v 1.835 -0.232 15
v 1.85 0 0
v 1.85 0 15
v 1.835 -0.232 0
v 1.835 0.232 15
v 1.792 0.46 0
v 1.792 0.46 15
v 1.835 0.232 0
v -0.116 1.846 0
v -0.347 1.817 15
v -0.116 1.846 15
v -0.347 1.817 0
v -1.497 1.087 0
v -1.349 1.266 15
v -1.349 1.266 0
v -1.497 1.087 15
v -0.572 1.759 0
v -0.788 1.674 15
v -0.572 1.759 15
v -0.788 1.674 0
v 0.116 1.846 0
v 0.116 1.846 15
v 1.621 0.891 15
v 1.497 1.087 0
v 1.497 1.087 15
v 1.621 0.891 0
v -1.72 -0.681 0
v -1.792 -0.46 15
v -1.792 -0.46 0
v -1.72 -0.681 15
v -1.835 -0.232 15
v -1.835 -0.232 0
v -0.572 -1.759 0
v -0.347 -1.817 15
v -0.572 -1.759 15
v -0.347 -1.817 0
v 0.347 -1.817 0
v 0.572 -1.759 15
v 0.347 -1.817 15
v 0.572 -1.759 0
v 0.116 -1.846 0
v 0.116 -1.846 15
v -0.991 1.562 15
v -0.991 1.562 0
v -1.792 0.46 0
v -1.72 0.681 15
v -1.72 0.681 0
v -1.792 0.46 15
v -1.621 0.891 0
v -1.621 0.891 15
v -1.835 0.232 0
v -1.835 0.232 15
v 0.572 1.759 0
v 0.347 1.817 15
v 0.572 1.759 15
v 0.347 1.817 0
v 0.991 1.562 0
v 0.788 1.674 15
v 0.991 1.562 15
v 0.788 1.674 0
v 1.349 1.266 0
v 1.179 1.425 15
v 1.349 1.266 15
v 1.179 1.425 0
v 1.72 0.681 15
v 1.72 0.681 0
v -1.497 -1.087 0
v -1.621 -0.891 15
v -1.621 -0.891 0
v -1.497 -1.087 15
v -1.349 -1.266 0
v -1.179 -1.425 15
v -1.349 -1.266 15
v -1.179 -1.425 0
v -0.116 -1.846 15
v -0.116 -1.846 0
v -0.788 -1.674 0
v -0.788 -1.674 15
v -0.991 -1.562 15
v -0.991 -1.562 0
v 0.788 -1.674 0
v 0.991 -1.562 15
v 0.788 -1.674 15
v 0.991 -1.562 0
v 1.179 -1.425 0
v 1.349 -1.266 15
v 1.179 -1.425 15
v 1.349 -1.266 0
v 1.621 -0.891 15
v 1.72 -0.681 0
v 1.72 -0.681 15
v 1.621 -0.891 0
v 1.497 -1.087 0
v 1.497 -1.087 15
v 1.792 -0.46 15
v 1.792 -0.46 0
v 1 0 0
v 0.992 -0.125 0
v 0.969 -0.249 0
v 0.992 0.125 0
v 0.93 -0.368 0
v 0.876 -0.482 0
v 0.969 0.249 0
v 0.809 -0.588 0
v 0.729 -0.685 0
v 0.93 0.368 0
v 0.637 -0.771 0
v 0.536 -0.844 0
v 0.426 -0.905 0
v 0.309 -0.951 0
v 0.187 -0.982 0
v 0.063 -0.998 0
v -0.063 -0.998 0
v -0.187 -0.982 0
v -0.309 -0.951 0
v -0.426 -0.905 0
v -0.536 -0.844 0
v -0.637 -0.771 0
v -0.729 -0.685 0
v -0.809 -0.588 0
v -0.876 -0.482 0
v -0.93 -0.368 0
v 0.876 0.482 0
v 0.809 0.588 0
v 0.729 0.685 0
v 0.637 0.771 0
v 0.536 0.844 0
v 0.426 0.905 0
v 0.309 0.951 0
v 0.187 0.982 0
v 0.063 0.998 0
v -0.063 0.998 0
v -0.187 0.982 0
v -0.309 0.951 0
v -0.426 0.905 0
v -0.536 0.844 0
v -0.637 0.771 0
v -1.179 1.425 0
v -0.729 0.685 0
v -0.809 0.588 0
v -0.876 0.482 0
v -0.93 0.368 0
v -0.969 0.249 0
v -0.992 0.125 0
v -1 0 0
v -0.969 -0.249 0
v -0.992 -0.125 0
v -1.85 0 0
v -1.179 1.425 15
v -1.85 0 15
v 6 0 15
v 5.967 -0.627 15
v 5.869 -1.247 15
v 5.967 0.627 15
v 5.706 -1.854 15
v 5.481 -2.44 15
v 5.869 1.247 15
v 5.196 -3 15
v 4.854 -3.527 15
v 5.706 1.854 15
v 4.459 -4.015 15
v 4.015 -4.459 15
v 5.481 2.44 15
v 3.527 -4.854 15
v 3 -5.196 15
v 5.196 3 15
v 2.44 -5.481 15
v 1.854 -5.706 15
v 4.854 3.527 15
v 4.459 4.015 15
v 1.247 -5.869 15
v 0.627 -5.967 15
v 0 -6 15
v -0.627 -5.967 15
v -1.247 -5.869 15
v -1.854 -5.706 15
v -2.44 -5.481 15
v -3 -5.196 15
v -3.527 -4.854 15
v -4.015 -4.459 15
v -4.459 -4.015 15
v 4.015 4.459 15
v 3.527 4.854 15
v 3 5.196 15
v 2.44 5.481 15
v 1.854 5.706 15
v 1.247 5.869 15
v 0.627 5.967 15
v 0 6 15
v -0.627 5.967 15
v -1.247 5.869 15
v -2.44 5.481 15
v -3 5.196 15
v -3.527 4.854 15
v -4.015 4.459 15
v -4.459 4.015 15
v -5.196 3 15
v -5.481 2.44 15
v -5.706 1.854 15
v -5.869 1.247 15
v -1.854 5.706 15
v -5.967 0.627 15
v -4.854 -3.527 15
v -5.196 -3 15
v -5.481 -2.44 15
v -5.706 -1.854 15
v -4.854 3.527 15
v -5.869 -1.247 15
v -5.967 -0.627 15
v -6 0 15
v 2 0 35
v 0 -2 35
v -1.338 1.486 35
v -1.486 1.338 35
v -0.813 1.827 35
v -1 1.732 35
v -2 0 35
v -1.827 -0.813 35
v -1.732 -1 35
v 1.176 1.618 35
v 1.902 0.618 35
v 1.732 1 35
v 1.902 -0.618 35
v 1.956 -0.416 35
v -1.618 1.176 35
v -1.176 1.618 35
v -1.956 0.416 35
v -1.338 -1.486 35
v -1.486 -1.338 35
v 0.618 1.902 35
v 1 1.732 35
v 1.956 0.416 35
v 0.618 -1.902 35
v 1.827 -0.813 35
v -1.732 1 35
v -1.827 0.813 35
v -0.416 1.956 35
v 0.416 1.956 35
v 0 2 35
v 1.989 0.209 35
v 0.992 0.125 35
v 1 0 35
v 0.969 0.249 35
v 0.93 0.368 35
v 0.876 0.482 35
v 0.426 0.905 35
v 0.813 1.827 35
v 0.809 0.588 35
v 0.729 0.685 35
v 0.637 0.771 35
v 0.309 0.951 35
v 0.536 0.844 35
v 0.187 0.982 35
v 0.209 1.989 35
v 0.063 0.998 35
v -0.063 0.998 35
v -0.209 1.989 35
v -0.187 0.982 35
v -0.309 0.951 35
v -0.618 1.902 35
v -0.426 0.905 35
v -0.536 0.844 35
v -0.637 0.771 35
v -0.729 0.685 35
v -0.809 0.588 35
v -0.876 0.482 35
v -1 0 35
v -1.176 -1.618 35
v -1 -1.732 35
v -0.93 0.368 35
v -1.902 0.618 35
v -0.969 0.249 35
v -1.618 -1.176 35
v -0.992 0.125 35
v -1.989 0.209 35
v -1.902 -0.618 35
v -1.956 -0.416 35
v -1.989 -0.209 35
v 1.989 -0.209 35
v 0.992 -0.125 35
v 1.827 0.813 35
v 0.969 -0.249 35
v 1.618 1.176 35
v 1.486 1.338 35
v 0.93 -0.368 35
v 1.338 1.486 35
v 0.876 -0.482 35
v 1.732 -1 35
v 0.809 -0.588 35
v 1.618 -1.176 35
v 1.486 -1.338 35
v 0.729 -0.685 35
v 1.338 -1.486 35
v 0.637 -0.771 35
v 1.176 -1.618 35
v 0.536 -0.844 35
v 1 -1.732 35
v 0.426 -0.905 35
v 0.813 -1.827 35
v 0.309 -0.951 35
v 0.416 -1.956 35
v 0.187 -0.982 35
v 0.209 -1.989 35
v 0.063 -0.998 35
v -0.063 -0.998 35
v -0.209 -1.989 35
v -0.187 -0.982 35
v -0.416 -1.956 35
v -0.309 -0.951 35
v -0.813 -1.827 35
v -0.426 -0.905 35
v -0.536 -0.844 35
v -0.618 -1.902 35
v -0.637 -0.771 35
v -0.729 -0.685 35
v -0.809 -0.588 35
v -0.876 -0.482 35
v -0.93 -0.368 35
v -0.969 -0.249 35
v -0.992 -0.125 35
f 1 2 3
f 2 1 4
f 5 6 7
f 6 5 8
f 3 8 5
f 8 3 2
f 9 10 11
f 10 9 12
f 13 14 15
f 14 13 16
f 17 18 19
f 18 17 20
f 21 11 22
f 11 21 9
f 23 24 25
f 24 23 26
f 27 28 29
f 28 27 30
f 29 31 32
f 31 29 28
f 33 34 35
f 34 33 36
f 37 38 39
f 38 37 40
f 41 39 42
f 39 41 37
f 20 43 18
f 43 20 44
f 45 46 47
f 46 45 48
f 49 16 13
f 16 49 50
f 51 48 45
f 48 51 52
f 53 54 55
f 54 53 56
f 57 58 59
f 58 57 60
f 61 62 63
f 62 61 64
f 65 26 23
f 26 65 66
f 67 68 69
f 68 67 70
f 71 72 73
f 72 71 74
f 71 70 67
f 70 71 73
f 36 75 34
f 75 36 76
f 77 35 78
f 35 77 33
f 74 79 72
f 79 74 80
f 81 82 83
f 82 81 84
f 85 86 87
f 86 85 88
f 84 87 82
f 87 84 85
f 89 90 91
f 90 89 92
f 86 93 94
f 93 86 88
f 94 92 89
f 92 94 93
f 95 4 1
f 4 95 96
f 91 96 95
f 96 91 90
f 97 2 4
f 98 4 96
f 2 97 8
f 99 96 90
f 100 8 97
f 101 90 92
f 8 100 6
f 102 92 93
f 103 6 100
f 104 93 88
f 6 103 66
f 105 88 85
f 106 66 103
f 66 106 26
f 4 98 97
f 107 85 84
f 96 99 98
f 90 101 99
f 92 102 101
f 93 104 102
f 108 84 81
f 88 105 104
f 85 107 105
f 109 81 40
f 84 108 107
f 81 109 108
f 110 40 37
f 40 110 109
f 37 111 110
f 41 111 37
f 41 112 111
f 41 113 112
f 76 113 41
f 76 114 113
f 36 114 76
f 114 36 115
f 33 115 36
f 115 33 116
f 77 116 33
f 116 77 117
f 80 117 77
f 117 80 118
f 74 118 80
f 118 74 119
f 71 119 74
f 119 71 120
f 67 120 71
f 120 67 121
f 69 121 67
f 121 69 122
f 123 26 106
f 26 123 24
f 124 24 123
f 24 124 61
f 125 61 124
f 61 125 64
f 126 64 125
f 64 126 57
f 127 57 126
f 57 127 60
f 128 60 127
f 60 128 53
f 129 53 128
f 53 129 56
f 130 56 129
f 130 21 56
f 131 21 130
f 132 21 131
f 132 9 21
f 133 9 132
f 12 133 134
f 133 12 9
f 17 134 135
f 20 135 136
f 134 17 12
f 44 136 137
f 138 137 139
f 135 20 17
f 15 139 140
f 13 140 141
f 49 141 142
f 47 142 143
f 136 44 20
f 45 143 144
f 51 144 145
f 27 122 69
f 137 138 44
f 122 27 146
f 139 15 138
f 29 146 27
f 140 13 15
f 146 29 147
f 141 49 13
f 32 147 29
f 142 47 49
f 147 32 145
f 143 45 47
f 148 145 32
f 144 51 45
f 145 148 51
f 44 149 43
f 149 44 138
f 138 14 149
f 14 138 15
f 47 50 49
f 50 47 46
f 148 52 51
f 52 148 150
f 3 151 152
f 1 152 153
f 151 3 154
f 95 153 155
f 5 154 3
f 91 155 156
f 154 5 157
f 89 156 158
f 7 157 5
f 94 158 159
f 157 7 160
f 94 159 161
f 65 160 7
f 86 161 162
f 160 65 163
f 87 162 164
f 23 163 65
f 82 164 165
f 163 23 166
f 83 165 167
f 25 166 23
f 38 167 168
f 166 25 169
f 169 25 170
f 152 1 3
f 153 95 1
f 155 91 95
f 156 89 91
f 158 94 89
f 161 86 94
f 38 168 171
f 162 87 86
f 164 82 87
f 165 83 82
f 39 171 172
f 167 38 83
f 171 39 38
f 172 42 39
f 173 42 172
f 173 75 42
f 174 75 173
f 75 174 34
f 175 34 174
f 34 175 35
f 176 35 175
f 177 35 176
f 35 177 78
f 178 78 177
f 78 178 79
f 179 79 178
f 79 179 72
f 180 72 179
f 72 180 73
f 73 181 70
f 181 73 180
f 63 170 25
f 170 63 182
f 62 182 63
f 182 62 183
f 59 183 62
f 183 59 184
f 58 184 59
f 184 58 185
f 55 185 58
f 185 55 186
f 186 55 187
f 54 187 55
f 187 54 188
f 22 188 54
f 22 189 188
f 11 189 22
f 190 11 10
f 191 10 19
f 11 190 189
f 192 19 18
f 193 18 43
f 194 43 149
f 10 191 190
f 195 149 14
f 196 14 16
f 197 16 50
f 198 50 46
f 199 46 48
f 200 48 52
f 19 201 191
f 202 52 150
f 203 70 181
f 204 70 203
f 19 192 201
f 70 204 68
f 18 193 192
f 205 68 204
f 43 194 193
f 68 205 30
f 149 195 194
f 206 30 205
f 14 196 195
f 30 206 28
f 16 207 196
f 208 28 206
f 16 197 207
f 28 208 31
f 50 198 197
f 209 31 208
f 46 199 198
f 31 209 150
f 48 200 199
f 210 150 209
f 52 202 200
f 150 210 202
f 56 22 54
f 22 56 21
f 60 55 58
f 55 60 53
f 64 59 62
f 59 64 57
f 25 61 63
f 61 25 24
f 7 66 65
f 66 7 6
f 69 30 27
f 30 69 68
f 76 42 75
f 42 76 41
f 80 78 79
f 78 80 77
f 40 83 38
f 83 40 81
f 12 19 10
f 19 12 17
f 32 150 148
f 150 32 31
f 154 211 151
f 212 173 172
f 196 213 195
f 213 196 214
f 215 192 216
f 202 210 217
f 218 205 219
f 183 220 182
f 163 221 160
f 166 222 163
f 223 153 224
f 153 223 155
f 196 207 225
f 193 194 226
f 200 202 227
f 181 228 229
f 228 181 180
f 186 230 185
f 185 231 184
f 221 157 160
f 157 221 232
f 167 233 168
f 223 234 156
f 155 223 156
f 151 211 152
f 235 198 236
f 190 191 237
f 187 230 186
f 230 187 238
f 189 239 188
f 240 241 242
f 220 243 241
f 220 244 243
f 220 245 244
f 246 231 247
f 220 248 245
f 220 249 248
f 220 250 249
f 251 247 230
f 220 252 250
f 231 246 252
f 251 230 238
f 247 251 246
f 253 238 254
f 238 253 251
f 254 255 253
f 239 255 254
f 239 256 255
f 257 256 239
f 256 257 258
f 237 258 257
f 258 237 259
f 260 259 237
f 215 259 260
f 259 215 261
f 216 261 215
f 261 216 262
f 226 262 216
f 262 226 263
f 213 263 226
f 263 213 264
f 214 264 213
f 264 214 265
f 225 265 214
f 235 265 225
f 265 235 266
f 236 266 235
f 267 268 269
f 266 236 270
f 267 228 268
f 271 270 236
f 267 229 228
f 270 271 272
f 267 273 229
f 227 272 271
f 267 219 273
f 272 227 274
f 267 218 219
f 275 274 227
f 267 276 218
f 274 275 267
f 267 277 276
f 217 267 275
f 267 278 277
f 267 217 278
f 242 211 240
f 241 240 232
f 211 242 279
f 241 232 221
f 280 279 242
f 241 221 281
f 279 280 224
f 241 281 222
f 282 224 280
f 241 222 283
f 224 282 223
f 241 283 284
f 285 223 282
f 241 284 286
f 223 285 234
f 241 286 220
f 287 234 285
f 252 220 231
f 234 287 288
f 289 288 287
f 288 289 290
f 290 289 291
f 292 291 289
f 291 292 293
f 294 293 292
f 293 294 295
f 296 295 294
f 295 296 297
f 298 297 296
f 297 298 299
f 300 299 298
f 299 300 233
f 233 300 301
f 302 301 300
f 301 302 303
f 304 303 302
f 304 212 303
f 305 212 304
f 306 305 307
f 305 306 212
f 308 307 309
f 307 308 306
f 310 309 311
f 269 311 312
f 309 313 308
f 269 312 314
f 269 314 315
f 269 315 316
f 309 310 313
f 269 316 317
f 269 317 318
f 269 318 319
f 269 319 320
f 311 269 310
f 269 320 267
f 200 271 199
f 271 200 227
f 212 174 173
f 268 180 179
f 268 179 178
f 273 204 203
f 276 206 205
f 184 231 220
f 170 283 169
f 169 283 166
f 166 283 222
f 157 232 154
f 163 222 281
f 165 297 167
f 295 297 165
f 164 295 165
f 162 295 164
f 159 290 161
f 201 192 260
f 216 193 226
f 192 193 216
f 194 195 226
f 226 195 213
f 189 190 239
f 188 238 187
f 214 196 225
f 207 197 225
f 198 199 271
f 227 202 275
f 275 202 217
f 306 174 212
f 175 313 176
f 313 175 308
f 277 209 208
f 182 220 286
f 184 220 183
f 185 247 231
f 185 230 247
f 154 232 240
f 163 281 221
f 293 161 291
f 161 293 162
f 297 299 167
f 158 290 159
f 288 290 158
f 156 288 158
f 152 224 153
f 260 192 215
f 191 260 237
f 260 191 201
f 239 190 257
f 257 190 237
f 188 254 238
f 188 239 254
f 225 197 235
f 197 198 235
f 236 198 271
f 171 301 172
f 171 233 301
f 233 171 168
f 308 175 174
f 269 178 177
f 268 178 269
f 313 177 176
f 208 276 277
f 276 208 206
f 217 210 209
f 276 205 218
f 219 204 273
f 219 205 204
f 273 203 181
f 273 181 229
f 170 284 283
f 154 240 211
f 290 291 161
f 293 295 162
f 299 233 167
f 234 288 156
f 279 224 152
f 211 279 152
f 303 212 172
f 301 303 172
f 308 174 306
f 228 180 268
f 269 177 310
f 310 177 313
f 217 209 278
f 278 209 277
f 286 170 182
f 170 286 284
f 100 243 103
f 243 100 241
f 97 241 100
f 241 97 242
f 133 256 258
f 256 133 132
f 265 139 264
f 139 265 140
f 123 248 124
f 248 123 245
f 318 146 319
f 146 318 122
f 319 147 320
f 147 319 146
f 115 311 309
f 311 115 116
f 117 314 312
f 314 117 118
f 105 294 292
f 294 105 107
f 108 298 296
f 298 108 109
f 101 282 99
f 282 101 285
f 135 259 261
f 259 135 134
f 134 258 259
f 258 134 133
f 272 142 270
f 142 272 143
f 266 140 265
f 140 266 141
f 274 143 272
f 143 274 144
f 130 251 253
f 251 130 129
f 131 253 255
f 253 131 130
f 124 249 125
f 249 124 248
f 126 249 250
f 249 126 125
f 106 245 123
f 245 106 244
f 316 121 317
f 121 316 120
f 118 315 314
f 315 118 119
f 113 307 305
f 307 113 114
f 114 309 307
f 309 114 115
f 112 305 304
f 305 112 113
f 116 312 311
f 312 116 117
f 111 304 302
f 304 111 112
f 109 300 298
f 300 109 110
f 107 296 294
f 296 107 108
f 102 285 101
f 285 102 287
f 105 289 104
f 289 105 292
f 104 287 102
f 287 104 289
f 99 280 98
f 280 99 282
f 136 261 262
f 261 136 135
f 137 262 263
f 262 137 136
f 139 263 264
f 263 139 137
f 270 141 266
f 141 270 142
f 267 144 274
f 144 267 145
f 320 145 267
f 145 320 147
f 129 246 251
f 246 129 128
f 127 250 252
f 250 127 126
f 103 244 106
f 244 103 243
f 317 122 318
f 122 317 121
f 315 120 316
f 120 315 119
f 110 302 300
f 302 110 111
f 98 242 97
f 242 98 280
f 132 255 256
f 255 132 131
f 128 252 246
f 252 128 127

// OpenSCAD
difference() {
    union() {
        linear_extrude(height=15) {
            circle(d=3.7, $fn=50);
        };
        translate([0, 0, 15]) {
            cylinder(h=20, d1=12, d2=4, $fn=60);
        }
    }
    
    linear_extrude(height=35) {
        circle(d=2, $fn=50);
    };
}
